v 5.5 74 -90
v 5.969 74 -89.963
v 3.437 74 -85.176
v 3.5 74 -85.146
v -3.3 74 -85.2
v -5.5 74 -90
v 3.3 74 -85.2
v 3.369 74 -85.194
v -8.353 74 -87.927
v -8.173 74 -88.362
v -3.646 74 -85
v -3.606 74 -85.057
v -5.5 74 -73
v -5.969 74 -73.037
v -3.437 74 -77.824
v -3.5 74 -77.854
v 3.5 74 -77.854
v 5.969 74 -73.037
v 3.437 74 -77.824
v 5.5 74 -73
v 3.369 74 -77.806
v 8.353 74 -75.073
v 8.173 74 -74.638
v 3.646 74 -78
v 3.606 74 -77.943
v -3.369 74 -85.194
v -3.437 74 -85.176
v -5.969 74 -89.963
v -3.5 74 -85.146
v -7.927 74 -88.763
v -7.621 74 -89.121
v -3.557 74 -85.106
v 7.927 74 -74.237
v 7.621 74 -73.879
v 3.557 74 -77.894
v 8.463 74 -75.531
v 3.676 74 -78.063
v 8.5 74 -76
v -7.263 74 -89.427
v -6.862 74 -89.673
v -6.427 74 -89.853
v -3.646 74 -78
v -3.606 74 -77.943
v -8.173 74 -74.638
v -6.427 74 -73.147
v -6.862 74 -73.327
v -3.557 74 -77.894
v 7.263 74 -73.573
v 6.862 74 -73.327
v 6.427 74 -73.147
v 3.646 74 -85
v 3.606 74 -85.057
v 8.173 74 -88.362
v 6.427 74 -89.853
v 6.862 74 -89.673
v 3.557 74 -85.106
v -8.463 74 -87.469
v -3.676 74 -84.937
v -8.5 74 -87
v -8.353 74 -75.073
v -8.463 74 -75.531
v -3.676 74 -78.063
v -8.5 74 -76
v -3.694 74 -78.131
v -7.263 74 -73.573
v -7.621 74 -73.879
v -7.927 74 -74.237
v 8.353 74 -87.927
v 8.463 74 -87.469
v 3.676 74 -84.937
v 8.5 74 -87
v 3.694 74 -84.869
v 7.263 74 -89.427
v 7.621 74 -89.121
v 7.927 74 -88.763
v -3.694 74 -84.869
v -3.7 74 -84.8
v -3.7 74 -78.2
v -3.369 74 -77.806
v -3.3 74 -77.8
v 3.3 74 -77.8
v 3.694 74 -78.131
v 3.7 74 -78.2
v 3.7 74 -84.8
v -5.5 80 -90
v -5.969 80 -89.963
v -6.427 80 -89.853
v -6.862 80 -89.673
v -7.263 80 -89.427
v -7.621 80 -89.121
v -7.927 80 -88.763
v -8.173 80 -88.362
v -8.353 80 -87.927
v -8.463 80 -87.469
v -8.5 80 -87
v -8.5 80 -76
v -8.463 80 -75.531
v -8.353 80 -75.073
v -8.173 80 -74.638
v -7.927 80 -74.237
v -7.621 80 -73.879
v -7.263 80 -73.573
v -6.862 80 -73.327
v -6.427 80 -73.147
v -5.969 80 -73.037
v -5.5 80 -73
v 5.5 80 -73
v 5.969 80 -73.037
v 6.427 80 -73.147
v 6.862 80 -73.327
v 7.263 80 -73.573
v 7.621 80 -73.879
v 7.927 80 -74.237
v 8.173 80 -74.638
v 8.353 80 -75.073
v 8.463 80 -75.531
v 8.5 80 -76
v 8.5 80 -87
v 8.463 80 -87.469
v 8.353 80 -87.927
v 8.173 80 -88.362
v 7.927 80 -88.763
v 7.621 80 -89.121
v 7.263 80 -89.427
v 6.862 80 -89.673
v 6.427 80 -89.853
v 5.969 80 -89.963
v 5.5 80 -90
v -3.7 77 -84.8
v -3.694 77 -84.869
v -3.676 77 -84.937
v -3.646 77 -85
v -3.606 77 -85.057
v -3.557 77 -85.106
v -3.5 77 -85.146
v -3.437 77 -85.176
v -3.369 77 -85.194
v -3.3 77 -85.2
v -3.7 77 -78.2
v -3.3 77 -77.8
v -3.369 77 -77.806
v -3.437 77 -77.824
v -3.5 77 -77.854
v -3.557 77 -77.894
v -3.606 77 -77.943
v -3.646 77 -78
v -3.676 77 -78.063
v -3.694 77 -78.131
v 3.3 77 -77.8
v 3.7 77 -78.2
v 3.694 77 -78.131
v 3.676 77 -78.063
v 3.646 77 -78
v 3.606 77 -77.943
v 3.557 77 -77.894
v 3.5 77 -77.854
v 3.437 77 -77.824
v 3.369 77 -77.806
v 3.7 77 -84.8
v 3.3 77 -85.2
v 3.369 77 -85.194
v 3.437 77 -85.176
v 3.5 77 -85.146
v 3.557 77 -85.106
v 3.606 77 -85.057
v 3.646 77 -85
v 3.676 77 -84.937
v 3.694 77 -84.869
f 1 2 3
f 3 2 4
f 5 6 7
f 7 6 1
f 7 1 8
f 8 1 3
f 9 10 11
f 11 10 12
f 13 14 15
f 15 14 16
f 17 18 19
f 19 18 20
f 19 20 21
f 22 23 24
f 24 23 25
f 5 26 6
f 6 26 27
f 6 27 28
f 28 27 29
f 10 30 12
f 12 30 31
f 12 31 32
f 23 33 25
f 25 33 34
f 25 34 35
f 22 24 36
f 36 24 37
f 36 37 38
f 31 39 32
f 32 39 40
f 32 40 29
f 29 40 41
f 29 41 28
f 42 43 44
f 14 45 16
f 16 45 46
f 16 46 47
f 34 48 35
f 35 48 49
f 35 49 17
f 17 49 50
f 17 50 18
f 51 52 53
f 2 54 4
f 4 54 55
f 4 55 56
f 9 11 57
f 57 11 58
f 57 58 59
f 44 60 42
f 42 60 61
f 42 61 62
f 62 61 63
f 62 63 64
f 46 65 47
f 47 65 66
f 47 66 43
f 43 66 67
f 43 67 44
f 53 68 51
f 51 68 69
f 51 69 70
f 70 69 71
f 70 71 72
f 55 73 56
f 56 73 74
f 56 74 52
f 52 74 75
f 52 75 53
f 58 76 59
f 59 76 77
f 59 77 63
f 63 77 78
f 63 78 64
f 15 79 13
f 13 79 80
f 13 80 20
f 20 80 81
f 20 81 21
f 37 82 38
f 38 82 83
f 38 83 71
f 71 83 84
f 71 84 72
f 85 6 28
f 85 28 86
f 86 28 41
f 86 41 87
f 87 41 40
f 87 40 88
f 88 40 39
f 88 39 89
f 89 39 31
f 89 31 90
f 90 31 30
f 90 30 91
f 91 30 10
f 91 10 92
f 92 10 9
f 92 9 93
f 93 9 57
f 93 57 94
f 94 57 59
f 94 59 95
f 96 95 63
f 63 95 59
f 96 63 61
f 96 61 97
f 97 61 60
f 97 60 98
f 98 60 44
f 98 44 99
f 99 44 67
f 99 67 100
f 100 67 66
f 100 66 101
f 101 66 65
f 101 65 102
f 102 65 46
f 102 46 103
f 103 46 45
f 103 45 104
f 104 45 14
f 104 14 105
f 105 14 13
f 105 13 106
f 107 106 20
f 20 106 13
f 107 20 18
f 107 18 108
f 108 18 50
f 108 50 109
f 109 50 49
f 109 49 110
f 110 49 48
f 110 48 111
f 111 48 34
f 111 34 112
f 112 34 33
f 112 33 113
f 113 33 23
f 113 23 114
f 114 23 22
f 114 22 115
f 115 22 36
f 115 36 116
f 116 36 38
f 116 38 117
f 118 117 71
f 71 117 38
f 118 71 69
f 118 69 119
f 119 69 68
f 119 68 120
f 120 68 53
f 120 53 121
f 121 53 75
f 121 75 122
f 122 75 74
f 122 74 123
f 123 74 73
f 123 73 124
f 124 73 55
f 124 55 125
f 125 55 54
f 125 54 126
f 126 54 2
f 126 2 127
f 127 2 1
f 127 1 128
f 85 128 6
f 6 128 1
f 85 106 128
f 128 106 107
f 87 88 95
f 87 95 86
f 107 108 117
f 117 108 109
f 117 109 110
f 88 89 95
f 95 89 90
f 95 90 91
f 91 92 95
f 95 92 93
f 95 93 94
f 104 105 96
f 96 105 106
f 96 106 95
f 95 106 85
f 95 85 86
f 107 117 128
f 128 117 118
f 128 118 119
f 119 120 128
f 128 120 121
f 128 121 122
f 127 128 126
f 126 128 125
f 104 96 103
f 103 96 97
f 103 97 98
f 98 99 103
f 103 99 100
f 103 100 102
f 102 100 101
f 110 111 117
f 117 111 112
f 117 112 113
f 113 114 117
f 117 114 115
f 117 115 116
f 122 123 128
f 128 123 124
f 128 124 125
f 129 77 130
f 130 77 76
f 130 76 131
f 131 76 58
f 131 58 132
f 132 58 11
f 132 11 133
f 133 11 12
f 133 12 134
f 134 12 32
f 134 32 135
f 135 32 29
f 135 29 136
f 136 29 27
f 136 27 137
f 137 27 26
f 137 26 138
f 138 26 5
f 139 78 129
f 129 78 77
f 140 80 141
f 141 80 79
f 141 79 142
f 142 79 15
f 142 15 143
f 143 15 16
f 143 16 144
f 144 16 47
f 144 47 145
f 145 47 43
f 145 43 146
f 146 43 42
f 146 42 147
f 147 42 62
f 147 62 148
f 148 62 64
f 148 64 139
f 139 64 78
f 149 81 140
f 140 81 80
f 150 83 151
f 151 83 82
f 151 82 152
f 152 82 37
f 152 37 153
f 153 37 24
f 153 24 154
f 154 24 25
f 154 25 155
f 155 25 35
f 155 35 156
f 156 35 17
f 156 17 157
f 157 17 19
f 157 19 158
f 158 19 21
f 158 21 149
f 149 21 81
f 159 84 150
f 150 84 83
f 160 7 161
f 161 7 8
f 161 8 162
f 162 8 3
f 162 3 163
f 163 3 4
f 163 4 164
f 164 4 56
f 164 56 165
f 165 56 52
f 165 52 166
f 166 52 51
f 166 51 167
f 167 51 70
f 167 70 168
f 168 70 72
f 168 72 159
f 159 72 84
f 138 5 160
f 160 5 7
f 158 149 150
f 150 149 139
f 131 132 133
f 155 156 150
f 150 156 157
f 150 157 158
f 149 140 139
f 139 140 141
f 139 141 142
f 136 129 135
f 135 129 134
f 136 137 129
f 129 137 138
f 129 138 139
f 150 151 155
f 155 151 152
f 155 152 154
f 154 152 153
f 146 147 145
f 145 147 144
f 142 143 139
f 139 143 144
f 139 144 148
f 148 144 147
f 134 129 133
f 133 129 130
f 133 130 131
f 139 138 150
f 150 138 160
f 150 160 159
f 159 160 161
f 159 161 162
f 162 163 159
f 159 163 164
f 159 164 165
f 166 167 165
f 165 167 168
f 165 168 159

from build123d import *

# Parameters (mm, degrees)
CAP_START         = 74
CAP_DEPTH         = 6
STEM_START        = 73.8
STEM_SOCKET_DEPTH = 3.2


with BuildPart() as part:
    # Sketch1 → Cap (new body)
    with BuildSketch(Plane(origin=(0, 0, 0), x_dir=(1, 0, 0), z_dir=(0, 1, 0)).offset(CAP_START)):
        with BuildLine():
            Line((-5.5, 90), (5.5, 90))
            ThreePointArc((5.5, 90), (7.621320344, 89.121320344), (8.5, 87))
            Line((8.5, 87), (8.5, 76))
            ThreePointArc((8.5, 76), (7.621320344, 73.878679656), (5.5, 73))
            Line((5.5, 73), (-5.5, 73))
            ThreePointArc((-5.5, 73), (-7.621320344, 73.878679656), (-8.5, 76))
            Line((-8.5, 76), (-8.5, 87))
            ThreePointArc((-8.5, 87), (-7.621320344, 89.121320344), (-5.5, 90))
        make_face()
    extrude(amount=CAP_DEPTH)

    # Sketch2 → Stem socket (cut)
    with BuildSketch(Plane(origin=(0, 0, 0), x_dir=(1, 0, 0), z_dir=(0, 1, 0)).offset(STEM_START)):
        with BuildLine():
            Line((-3.3, 85.2), (3.3, 85.2))
            ThreePointArc((3.3, 85.2), (3.582842712, 85.082842712), (3.7, 84.8))
            Line((3.7, 84.8), (3.7, 78.2))
            ThreePointArc((3.7, 78.2), (3.582842712, 77.917157288), (3.3, 77.8))
            Line((3.3, 77.8), (-3.3, 77.8))
            ThreePointArc((-3.3, 77.8), (-3.582842712, 77.917157288), (-3.7, 78.2))
            Line((-3.7, 78.2), (-3.7, 84.8))
            ThreePointArc((-3.7, 84.8), (-3.582842712, 85.082842712), (-3.3, 85.2))
        make_face()
    extrude(amount=STEM_SOCKET_DEPTH, mode=Mode.SUBTRACT)


solid = part.part
